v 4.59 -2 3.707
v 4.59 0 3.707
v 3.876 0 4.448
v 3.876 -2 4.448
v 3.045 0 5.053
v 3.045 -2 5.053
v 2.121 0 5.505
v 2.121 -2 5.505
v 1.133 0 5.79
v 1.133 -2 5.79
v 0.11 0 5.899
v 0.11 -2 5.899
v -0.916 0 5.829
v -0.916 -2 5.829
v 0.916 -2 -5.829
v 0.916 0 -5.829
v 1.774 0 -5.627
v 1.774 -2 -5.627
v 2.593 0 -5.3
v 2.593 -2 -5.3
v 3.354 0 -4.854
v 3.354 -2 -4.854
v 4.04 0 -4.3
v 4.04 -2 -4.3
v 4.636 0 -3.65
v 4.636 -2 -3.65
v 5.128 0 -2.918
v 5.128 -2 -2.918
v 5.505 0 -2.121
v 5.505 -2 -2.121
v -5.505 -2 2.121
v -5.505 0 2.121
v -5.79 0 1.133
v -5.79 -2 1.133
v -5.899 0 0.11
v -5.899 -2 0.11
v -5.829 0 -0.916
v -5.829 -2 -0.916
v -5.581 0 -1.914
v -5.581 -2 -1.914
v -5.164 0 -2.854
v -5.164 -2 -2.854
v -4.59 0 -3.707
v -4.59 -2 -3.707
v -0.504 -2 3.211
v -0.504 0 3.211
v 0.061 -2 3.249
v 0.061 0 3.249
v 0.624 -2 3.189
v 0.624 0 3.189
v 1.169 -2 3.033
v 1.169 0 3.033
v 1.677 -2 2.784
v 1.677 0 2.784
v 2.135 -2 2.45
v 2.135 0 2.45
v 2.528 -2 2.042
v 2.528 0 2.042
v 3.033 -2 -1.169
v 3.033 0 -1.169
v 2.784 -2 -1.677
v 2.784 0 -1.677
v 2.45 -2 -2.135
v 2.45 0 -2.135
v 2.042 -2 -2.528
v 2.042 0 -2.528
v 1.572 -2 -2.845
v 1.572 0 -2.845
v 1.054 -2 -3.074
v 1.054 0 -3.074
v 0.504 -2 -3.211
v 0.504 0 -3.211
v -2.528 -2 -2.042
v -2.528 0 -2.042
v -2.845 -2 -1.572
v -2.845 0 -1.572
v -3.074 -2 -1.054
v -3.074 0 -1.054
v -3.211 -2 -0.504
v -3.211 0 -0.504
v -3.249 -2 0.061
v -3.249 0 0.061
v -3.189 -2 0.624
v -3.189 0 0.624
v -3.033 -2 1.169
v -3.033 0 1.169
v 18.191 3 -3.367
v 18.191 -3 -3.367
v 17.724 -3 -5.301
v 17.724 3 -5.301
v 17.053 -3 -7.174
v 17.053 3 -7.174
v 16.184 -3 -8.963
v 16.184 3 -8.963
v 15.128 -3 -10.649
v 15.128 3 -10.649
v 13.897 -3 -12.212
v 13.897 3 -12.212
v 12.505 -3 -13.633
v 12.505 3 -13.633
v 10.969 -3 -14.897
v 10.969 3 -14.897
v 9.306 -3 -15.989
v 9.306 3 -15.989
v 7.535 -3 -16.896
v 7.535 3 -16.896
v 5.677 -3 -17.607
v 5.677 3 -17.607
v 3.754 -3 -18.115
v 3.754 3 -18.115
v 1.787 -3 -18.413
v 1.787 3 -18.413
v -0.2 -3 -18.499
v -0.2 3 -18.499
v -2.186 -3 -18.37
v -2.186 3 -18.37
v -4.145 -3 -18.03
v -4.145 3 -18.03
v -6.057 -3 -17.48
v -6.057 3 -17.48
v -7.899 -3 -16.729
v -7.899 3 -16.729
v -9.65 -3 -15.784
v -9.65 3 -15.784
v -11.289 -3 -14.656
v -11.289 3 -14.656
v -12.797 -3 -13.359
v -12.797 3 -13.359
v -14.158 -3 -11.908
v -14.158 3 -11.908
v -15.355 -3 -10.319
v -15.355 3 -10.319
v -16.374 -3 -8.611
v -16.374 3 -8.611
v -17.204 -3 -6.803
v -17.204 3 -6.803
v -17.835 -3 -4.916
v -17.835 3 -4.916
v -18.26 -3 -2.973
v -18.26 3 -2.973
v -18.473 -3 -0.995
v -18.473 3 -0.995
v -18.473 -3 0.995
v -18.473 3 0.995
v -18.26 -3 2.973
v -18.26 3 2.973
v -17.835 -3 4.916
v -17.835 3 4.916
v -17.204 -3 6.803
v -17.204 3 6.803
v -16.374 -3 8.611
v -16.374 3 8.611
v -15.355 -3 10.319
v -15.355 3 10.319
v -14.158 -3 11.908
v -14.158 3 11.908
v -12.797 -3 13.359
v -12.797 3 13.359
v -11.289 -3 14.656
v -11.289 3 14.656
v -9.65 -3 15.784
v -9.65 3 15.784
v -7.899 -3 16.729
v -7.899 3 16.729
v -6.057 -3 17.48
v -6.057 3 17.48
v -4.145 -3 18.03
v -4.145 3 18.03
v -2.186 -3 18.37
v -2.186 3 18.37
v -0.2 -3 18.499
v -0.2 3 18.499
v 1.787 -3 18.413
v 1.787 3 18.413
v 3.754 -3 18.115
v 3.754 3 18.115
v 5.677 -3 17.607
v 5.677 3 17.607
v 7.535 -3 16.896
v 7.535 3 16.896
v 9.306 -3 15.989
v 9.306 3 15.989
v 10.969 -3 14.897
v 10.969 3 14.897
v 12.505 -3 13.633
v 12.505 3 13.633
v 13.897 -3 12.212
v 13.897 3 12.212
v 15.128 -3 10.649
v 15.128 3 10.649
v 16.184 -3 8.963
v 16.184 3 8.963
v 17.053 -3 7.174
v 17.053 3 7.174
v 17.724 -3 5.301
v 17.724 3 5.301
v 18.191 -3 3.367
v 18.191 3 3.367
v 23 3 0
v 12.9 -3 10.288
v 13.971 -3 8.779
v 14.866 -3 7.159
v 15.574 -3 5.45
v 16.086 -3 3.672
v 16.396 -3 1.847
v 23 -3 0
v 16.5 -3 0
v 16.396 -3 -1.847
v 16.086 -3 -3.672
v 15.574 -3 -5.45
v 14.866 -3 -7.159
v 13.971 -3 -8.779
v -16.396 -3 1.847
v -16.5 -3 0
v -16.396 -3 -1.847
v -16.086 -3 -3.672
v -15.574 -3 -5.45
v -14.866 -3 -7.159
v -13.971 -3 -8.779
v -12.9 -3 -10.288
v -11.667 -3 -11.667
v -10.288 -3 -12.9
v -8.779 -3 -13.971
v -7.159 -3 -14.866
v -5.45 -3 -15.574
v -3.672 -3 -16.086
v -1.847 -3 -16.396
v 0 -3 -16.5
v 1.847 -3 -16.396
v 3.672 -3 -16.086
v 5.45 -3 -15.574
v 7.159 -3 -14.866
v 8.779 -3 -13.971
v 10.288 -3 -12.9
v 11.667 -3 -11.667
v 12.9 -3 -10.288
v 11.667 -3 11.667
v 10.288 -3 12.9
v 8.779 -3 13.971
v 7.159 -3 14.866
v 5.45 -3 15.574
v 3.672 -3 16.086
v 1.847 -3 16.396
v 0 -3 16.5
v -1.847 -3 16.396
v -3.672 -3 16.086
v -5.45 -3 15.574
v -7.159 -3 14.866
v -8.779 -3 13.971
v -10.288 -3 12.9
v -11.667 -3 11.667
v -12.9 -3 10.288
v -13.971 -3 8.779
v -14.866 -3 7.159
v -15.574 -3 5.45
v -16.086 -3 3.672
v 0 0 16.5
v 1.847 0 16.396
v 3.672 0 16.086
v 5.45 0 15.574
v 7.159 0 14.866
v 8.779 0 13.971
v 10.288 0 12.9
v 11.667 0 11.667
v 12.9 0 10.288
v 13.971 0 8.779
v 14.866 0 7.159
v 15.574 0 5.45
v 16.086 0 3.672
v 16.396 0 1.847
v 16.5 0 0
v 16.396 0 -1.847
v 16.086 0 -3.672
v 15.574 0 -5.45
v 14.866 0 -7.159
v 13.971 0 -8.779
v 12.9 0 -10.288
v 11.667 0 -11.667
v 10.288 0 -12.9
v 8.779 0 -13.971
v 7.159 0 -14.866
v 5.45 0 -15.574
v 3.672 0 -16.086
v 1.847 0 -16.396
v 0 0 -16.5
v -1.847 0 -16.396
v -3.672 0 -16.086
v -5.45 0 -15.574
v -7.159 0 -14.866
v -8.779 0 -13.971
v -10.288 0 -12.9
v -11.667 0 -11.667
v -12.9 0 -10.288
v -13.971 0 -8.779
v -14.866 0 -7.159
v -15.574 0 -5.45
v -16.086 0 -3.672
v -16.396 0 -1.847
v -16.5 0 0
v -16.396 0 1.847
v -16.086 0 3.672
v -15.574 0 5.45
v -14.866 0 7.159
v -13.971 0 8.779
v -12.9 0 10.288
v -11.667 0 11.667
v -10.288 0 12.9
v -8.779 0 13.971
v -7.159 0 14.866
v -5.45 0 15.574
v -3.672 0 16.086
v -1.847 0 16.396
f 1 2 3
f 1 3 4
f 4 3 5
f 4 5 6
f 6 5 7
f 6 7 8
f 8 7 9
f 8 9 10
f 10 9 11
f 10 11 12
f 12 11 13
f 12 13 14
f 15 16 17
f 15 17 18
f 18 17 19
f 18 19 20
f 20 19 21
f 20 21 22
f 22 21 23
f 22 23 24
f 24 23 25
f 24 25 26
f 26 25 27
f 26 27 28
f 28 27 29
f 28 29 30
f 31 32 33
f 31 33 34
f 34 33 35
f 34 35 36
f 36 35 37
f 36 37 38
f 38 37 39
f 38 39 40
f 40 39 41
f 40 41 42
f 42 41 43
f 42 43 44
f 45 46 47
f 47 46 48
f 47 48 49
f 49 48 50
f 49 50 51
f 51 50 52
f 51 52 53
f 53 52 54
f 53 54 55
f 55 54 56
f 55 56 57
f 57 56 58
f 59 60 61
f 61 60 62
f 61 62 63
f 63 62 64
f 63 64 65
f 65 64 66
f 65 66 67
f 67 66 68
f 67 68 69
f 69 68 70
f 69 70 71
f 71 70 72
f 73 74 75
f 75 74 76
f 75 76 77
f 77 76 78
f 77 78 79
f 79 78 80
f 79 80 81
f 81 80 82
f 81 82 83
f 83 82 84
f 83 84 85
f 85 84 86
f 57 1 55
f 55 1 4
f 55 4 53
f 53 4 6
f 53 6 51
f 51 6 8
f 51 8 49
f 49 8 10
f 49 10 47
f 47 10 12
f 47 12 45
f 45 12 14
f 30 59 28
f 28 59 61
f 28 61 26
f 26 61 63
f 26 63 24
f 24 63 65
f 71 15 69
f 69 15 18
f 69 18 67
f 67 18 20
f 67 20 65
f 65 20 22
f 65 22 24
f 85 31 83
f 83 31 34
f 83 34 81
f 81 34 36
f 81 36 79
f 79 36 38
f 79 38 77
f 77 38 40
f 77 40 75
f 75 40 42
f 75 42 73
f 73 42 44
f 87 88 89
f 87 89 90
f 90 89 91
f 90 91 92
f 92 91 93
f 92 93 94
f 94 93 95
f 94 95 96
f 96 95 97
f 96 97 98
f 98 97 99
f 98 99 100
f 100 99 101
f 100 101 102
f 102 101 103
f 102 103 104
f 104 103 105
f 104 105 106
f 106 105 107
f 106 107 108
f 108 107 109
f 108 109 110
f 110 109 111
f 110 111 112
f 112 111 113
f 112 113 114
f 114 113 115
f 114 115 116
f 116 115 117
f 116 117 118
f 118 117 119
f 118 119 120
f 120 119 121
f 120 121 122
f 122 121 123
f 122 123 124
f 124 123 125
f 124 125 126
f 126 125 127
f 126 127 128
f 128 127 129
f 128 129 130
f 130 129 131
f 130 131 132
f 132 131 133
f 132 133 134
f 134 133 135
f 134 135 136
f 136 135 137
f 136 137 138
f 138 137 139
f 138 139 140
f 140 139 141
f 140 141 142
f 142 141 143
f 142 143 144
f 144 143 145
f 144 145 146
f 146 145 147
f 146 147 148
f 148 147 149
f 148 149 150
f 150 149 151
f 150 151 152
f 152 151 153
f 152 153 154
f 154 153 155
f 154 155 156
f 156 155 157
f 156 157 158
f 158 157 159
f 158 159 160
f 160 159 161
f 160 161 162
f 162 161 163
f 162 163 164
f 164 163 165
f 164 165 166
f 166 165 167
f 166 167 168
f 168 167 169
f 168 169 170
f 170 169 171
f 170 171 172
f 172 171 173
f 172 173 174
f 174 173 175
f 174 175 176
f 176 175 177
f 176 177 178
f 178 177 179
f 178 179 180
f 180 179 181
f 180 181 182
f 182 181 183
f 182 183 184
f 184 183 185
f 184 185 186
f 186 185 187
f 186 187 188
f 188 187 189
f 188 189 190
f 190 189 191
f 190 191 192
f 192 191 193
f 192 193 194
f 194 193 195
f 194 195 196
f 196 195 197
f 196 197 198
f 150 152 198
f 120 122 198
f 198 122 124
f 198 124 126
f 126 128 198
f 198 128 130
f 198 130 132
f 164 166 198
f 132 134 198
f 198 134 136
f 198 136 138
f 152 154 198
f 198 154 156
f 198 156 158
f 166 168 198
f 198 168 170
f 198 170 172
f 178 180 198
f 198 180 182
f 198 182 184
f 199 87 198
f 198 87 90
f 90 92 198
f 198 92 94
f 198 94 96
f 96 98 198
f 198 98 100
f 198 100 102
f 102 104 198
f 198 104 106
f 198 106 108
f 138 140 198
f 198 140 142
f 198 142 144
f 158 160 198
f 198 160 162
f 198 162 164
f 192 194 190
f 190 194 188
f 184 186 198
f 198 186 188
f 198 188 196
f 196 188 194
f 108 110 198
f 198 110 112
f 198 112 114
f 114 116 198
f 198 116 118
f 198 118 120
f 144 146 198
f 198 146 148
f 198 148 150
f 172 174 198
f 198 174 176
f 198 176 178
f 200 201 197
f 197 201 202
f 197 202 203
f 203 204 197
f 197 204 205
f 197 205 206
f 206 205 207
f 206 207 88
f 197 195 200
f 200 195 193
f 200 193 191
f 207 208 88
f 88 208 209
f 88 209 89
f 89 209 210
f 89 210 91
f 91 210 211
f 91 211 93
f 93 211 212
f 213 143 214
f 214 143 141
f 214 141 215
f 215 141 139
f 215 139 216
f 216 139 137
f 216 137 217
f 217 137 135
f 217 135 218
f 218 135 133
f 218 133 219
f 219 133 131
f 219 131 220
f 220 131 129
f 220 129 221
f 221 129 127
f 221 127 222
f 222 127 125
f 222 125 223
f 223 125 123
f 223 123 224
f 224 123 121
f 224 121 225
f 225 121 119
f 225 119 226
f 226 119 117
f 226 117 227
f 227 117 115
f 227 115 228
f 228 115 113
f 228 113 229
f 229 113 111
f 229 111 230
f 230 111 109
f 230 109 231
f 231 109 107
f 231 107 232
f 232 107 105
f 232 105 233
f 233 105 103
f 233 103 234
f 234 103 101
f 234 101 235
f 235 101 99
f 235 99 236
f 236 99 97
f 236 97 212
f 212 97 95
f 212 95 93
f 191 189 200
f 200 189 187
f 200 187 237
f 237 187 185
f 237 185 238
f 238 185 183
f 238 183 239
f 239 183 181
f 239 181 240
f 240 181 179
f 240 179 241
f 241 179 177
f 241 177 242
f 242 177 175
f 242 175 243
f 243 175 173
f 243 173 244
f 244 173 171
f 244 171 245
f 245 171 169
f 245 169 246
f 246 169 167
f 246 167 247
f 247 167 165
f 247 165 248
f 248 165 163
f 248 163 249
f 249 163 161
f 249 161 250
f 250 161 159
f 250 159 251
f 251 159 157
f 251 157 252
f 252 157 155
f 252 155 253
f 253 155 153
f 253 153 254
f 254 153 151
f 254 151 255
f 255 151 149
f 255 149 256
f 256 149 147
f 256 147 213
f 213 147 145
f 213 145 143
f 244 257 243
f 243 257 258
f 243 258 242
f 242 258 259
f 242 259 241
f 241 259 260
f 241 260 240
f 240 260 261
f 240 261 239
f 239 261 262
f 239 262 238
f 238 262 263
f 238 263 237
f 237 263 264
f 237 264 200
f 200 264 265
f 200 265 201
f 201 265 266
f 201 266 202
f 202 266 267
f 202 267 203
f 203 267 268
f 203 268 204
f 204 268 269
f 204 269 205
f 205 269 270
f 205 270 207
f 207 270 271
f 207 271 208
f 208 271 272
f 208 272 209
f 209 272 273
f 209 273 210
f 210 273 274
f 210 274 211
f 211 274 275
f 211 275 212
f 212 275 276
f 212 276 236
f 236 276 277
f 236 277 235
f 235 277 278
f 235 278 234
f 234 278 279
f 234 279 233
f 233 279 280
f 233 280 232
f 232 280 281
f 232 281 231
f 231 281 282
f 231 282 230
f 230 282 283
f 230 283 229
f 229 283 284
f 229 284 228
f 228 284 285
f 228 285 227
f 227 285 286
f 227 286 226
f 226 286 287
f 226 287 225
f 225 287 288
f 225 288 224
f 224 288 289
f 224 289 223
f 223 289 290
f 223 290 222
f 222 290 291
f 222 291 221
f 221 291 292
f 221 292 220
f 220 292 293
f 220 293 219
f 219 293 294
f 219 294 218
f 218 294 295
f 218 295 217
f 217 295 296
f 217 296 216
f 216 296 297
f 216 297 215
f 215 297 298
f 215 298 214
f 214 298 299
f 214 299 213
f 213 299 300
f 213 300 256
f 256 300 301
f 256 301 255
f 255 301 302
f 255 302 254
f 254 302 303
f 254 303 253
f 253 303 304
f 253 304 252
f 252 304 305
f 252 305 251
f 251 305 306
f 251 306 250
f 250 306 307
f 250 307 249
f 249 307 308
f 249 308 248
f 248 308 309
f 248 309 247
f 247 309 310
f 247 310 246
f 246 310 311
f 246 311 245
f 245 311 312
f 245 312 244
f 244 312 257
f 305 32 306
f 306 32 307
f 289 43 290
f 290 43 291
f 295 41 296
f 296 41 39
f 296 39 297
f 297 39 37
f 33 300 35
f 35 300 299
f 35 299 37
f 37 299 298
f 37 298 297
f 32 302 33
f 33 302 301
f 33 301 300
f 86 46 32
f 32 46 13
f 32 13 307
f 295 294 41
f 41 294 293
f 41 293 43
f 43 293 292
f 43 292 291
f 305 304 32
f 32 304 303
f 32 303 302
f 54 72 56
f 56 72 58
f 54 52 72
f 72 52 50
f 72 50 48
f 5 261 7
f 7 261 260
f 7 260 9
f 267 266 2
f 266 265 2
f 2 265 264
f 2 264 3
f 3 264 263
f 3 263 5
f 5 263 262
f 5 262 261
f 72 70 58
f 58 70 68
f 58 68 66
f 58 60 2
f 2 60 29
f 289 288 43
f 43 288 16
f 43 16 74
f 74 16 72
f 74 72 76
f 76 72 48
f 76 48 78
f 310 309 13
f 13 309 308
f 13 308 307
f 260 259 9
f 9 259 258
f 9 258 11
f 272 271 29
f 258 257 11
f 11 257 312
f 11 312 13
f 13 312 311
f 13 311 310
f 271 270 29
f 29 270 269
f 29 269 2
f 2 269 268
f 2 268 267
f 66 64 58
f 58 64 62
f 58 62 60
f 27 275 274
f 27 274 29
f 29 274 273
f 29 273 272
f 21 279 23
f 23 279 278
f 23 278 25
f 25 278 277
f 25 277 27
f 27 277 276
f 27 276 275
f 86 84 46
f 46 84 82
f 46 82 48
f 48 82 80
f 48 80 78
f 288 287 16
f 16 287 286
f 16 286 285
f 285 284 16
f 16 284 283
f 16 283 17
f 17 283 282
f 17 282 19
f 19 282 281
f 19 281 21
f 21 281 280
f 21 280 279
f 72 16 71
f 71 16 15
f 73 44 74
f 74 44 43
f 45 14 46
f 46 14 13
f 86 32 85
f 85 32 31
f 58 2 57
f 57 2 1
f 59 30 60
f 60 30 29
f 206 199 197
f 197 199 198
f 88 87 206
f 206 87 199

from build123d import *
from build123d.topology import SkipClean

# Parameters (mm, degrees)
SKETCH2_R           = 18.5
BOSS_EXTRUDE1_DEPTH = 3
BOSS_EXTRUDE2_START = 3
SKETCH3_R           = 18.5
SKETCH3_R_2         = 16.5
BOSS_EXTRUDE2_DEPTH = 3
SKETCH4_R           = 5.9
SKETCH4_R_2         = 3.25
BOSS_EXTRUDE3_DEPTH = 5
CUT_EXTRUDE2_DEPTH  = 5
BOSS_EXTRUDE4_DEPTH = 6


with BuildPart() as part:
    # Sketch2 → Boss-Extrude1 (new body)
    with BuildSketch(Plane(origin=(0, 0, 0), x_dir=(1, 0, 0), z_dir=(0, 1, 0))):
        with Locations(Location((0, 0, 0), (0, 0, 270))):
            Circle(SKETCH2_R)
    extrude(amount=BOSS_EXTRUDE1_DEPTH)

    # Sketch3 → Boss-Extrude2 (add)
    with BuildSketch(Plane.XZ.offset(BOSS_EXTRUDE2_START)):
        with Locations(Location((0, 0, 0), (0, 0, 270))):
            Circle(SKETCH3_R)
        with Locations(Location((0, 0, 0), (0, 0, 270))):
            Circle(SKETCH3_R_2, mode=Mode.SUBTRACT)
    extrude(amount=-BOSS_EXTRUDE2_DEPTH)

    # Sketch4 → Boss-Extrude3 (add)
    with BuildSketch(Plane(origin=(0, 3, 0), x_dir=(1, 0, 0), z_dir=(0, 1, 0))):
        with Locations(Location((0, 0, 0), (0, 0, 270))):
            Circle(SKETCH4_R)
        with Locations(Location((0, 0, 0), (0, 0, 270))):
            Circle(SKETCH4_R_2, mode=Mode.SUBTRACT)
    extrude(amount=-BOSS_EXTRUDE3_DEPTH)

    # Sketch5 → Cut-Extrude2 (cut)
    with BuildSketch(Plane.XZ):
        with BuildLine():
            Line((4.59674962, 3.712723487), (1.284790165, 1.037705121))
            Line((1.284790165, 1.037705121), (1.443832634, -0.55633918))
            Line((1.443832634, -0.55633918), (5.513687667, -2.124540202))
            ThreePointArc((5.513687667, -2.124540202), (5.837263689, 0.916938047), (4.59674962, 3.712723487))
        make_face()
        with BuildLine():
            Line((-0.766702536, -0.619253766), (-4.59674962, -3.712723487))
            ThreePointArc((-4.59674962, -3.712723487), (-2.124540202, -5.513687667), (0.916938047, -5.837263689))
            Line((0.916938047, -5.837263689), (0.150426378, -0.957620244))
            Line((0.150426378, -0.957620244), (-0.766702536, -0.619253766))
        make_face()
        with BuildLine():
            Line((-0.209377738, 1.332906921), (-0.916938047, 5.837263689))
            ThreePointArc((-0.916938047, 5.837263689), (-3.712723487, 4.59674962), (-5.513687667, 2.124540202))
            Line((-5.513687667, 2.124540202), (-1.089014646, 0.419620322))
            Line((-1.089014646, 0.419620322), (-0.209377738, 1.332906921))
        make_face()
    extrude(amount=CUT_EXTRUDE2_DEPTH, mode=Mode.SUBTRACT)

    # Sketch6 → Boss-Extrude4 (add)
    with SkipClean():  # the faces are left unmerged after this step: merging them gives an invalid solid
        with BuildSketch(Plane(origin=(0, 3, 0), x_dir=(1, 0, 0), z_dir=(0, 1, 0))):
            Polygon((18.190962826, 3.367324081), (18.190962826, -3.367324081), (23, 0), align=None)
        extrude(amount=-BOSS_EXTRUDE4_DEPTH)


solid = part.part
